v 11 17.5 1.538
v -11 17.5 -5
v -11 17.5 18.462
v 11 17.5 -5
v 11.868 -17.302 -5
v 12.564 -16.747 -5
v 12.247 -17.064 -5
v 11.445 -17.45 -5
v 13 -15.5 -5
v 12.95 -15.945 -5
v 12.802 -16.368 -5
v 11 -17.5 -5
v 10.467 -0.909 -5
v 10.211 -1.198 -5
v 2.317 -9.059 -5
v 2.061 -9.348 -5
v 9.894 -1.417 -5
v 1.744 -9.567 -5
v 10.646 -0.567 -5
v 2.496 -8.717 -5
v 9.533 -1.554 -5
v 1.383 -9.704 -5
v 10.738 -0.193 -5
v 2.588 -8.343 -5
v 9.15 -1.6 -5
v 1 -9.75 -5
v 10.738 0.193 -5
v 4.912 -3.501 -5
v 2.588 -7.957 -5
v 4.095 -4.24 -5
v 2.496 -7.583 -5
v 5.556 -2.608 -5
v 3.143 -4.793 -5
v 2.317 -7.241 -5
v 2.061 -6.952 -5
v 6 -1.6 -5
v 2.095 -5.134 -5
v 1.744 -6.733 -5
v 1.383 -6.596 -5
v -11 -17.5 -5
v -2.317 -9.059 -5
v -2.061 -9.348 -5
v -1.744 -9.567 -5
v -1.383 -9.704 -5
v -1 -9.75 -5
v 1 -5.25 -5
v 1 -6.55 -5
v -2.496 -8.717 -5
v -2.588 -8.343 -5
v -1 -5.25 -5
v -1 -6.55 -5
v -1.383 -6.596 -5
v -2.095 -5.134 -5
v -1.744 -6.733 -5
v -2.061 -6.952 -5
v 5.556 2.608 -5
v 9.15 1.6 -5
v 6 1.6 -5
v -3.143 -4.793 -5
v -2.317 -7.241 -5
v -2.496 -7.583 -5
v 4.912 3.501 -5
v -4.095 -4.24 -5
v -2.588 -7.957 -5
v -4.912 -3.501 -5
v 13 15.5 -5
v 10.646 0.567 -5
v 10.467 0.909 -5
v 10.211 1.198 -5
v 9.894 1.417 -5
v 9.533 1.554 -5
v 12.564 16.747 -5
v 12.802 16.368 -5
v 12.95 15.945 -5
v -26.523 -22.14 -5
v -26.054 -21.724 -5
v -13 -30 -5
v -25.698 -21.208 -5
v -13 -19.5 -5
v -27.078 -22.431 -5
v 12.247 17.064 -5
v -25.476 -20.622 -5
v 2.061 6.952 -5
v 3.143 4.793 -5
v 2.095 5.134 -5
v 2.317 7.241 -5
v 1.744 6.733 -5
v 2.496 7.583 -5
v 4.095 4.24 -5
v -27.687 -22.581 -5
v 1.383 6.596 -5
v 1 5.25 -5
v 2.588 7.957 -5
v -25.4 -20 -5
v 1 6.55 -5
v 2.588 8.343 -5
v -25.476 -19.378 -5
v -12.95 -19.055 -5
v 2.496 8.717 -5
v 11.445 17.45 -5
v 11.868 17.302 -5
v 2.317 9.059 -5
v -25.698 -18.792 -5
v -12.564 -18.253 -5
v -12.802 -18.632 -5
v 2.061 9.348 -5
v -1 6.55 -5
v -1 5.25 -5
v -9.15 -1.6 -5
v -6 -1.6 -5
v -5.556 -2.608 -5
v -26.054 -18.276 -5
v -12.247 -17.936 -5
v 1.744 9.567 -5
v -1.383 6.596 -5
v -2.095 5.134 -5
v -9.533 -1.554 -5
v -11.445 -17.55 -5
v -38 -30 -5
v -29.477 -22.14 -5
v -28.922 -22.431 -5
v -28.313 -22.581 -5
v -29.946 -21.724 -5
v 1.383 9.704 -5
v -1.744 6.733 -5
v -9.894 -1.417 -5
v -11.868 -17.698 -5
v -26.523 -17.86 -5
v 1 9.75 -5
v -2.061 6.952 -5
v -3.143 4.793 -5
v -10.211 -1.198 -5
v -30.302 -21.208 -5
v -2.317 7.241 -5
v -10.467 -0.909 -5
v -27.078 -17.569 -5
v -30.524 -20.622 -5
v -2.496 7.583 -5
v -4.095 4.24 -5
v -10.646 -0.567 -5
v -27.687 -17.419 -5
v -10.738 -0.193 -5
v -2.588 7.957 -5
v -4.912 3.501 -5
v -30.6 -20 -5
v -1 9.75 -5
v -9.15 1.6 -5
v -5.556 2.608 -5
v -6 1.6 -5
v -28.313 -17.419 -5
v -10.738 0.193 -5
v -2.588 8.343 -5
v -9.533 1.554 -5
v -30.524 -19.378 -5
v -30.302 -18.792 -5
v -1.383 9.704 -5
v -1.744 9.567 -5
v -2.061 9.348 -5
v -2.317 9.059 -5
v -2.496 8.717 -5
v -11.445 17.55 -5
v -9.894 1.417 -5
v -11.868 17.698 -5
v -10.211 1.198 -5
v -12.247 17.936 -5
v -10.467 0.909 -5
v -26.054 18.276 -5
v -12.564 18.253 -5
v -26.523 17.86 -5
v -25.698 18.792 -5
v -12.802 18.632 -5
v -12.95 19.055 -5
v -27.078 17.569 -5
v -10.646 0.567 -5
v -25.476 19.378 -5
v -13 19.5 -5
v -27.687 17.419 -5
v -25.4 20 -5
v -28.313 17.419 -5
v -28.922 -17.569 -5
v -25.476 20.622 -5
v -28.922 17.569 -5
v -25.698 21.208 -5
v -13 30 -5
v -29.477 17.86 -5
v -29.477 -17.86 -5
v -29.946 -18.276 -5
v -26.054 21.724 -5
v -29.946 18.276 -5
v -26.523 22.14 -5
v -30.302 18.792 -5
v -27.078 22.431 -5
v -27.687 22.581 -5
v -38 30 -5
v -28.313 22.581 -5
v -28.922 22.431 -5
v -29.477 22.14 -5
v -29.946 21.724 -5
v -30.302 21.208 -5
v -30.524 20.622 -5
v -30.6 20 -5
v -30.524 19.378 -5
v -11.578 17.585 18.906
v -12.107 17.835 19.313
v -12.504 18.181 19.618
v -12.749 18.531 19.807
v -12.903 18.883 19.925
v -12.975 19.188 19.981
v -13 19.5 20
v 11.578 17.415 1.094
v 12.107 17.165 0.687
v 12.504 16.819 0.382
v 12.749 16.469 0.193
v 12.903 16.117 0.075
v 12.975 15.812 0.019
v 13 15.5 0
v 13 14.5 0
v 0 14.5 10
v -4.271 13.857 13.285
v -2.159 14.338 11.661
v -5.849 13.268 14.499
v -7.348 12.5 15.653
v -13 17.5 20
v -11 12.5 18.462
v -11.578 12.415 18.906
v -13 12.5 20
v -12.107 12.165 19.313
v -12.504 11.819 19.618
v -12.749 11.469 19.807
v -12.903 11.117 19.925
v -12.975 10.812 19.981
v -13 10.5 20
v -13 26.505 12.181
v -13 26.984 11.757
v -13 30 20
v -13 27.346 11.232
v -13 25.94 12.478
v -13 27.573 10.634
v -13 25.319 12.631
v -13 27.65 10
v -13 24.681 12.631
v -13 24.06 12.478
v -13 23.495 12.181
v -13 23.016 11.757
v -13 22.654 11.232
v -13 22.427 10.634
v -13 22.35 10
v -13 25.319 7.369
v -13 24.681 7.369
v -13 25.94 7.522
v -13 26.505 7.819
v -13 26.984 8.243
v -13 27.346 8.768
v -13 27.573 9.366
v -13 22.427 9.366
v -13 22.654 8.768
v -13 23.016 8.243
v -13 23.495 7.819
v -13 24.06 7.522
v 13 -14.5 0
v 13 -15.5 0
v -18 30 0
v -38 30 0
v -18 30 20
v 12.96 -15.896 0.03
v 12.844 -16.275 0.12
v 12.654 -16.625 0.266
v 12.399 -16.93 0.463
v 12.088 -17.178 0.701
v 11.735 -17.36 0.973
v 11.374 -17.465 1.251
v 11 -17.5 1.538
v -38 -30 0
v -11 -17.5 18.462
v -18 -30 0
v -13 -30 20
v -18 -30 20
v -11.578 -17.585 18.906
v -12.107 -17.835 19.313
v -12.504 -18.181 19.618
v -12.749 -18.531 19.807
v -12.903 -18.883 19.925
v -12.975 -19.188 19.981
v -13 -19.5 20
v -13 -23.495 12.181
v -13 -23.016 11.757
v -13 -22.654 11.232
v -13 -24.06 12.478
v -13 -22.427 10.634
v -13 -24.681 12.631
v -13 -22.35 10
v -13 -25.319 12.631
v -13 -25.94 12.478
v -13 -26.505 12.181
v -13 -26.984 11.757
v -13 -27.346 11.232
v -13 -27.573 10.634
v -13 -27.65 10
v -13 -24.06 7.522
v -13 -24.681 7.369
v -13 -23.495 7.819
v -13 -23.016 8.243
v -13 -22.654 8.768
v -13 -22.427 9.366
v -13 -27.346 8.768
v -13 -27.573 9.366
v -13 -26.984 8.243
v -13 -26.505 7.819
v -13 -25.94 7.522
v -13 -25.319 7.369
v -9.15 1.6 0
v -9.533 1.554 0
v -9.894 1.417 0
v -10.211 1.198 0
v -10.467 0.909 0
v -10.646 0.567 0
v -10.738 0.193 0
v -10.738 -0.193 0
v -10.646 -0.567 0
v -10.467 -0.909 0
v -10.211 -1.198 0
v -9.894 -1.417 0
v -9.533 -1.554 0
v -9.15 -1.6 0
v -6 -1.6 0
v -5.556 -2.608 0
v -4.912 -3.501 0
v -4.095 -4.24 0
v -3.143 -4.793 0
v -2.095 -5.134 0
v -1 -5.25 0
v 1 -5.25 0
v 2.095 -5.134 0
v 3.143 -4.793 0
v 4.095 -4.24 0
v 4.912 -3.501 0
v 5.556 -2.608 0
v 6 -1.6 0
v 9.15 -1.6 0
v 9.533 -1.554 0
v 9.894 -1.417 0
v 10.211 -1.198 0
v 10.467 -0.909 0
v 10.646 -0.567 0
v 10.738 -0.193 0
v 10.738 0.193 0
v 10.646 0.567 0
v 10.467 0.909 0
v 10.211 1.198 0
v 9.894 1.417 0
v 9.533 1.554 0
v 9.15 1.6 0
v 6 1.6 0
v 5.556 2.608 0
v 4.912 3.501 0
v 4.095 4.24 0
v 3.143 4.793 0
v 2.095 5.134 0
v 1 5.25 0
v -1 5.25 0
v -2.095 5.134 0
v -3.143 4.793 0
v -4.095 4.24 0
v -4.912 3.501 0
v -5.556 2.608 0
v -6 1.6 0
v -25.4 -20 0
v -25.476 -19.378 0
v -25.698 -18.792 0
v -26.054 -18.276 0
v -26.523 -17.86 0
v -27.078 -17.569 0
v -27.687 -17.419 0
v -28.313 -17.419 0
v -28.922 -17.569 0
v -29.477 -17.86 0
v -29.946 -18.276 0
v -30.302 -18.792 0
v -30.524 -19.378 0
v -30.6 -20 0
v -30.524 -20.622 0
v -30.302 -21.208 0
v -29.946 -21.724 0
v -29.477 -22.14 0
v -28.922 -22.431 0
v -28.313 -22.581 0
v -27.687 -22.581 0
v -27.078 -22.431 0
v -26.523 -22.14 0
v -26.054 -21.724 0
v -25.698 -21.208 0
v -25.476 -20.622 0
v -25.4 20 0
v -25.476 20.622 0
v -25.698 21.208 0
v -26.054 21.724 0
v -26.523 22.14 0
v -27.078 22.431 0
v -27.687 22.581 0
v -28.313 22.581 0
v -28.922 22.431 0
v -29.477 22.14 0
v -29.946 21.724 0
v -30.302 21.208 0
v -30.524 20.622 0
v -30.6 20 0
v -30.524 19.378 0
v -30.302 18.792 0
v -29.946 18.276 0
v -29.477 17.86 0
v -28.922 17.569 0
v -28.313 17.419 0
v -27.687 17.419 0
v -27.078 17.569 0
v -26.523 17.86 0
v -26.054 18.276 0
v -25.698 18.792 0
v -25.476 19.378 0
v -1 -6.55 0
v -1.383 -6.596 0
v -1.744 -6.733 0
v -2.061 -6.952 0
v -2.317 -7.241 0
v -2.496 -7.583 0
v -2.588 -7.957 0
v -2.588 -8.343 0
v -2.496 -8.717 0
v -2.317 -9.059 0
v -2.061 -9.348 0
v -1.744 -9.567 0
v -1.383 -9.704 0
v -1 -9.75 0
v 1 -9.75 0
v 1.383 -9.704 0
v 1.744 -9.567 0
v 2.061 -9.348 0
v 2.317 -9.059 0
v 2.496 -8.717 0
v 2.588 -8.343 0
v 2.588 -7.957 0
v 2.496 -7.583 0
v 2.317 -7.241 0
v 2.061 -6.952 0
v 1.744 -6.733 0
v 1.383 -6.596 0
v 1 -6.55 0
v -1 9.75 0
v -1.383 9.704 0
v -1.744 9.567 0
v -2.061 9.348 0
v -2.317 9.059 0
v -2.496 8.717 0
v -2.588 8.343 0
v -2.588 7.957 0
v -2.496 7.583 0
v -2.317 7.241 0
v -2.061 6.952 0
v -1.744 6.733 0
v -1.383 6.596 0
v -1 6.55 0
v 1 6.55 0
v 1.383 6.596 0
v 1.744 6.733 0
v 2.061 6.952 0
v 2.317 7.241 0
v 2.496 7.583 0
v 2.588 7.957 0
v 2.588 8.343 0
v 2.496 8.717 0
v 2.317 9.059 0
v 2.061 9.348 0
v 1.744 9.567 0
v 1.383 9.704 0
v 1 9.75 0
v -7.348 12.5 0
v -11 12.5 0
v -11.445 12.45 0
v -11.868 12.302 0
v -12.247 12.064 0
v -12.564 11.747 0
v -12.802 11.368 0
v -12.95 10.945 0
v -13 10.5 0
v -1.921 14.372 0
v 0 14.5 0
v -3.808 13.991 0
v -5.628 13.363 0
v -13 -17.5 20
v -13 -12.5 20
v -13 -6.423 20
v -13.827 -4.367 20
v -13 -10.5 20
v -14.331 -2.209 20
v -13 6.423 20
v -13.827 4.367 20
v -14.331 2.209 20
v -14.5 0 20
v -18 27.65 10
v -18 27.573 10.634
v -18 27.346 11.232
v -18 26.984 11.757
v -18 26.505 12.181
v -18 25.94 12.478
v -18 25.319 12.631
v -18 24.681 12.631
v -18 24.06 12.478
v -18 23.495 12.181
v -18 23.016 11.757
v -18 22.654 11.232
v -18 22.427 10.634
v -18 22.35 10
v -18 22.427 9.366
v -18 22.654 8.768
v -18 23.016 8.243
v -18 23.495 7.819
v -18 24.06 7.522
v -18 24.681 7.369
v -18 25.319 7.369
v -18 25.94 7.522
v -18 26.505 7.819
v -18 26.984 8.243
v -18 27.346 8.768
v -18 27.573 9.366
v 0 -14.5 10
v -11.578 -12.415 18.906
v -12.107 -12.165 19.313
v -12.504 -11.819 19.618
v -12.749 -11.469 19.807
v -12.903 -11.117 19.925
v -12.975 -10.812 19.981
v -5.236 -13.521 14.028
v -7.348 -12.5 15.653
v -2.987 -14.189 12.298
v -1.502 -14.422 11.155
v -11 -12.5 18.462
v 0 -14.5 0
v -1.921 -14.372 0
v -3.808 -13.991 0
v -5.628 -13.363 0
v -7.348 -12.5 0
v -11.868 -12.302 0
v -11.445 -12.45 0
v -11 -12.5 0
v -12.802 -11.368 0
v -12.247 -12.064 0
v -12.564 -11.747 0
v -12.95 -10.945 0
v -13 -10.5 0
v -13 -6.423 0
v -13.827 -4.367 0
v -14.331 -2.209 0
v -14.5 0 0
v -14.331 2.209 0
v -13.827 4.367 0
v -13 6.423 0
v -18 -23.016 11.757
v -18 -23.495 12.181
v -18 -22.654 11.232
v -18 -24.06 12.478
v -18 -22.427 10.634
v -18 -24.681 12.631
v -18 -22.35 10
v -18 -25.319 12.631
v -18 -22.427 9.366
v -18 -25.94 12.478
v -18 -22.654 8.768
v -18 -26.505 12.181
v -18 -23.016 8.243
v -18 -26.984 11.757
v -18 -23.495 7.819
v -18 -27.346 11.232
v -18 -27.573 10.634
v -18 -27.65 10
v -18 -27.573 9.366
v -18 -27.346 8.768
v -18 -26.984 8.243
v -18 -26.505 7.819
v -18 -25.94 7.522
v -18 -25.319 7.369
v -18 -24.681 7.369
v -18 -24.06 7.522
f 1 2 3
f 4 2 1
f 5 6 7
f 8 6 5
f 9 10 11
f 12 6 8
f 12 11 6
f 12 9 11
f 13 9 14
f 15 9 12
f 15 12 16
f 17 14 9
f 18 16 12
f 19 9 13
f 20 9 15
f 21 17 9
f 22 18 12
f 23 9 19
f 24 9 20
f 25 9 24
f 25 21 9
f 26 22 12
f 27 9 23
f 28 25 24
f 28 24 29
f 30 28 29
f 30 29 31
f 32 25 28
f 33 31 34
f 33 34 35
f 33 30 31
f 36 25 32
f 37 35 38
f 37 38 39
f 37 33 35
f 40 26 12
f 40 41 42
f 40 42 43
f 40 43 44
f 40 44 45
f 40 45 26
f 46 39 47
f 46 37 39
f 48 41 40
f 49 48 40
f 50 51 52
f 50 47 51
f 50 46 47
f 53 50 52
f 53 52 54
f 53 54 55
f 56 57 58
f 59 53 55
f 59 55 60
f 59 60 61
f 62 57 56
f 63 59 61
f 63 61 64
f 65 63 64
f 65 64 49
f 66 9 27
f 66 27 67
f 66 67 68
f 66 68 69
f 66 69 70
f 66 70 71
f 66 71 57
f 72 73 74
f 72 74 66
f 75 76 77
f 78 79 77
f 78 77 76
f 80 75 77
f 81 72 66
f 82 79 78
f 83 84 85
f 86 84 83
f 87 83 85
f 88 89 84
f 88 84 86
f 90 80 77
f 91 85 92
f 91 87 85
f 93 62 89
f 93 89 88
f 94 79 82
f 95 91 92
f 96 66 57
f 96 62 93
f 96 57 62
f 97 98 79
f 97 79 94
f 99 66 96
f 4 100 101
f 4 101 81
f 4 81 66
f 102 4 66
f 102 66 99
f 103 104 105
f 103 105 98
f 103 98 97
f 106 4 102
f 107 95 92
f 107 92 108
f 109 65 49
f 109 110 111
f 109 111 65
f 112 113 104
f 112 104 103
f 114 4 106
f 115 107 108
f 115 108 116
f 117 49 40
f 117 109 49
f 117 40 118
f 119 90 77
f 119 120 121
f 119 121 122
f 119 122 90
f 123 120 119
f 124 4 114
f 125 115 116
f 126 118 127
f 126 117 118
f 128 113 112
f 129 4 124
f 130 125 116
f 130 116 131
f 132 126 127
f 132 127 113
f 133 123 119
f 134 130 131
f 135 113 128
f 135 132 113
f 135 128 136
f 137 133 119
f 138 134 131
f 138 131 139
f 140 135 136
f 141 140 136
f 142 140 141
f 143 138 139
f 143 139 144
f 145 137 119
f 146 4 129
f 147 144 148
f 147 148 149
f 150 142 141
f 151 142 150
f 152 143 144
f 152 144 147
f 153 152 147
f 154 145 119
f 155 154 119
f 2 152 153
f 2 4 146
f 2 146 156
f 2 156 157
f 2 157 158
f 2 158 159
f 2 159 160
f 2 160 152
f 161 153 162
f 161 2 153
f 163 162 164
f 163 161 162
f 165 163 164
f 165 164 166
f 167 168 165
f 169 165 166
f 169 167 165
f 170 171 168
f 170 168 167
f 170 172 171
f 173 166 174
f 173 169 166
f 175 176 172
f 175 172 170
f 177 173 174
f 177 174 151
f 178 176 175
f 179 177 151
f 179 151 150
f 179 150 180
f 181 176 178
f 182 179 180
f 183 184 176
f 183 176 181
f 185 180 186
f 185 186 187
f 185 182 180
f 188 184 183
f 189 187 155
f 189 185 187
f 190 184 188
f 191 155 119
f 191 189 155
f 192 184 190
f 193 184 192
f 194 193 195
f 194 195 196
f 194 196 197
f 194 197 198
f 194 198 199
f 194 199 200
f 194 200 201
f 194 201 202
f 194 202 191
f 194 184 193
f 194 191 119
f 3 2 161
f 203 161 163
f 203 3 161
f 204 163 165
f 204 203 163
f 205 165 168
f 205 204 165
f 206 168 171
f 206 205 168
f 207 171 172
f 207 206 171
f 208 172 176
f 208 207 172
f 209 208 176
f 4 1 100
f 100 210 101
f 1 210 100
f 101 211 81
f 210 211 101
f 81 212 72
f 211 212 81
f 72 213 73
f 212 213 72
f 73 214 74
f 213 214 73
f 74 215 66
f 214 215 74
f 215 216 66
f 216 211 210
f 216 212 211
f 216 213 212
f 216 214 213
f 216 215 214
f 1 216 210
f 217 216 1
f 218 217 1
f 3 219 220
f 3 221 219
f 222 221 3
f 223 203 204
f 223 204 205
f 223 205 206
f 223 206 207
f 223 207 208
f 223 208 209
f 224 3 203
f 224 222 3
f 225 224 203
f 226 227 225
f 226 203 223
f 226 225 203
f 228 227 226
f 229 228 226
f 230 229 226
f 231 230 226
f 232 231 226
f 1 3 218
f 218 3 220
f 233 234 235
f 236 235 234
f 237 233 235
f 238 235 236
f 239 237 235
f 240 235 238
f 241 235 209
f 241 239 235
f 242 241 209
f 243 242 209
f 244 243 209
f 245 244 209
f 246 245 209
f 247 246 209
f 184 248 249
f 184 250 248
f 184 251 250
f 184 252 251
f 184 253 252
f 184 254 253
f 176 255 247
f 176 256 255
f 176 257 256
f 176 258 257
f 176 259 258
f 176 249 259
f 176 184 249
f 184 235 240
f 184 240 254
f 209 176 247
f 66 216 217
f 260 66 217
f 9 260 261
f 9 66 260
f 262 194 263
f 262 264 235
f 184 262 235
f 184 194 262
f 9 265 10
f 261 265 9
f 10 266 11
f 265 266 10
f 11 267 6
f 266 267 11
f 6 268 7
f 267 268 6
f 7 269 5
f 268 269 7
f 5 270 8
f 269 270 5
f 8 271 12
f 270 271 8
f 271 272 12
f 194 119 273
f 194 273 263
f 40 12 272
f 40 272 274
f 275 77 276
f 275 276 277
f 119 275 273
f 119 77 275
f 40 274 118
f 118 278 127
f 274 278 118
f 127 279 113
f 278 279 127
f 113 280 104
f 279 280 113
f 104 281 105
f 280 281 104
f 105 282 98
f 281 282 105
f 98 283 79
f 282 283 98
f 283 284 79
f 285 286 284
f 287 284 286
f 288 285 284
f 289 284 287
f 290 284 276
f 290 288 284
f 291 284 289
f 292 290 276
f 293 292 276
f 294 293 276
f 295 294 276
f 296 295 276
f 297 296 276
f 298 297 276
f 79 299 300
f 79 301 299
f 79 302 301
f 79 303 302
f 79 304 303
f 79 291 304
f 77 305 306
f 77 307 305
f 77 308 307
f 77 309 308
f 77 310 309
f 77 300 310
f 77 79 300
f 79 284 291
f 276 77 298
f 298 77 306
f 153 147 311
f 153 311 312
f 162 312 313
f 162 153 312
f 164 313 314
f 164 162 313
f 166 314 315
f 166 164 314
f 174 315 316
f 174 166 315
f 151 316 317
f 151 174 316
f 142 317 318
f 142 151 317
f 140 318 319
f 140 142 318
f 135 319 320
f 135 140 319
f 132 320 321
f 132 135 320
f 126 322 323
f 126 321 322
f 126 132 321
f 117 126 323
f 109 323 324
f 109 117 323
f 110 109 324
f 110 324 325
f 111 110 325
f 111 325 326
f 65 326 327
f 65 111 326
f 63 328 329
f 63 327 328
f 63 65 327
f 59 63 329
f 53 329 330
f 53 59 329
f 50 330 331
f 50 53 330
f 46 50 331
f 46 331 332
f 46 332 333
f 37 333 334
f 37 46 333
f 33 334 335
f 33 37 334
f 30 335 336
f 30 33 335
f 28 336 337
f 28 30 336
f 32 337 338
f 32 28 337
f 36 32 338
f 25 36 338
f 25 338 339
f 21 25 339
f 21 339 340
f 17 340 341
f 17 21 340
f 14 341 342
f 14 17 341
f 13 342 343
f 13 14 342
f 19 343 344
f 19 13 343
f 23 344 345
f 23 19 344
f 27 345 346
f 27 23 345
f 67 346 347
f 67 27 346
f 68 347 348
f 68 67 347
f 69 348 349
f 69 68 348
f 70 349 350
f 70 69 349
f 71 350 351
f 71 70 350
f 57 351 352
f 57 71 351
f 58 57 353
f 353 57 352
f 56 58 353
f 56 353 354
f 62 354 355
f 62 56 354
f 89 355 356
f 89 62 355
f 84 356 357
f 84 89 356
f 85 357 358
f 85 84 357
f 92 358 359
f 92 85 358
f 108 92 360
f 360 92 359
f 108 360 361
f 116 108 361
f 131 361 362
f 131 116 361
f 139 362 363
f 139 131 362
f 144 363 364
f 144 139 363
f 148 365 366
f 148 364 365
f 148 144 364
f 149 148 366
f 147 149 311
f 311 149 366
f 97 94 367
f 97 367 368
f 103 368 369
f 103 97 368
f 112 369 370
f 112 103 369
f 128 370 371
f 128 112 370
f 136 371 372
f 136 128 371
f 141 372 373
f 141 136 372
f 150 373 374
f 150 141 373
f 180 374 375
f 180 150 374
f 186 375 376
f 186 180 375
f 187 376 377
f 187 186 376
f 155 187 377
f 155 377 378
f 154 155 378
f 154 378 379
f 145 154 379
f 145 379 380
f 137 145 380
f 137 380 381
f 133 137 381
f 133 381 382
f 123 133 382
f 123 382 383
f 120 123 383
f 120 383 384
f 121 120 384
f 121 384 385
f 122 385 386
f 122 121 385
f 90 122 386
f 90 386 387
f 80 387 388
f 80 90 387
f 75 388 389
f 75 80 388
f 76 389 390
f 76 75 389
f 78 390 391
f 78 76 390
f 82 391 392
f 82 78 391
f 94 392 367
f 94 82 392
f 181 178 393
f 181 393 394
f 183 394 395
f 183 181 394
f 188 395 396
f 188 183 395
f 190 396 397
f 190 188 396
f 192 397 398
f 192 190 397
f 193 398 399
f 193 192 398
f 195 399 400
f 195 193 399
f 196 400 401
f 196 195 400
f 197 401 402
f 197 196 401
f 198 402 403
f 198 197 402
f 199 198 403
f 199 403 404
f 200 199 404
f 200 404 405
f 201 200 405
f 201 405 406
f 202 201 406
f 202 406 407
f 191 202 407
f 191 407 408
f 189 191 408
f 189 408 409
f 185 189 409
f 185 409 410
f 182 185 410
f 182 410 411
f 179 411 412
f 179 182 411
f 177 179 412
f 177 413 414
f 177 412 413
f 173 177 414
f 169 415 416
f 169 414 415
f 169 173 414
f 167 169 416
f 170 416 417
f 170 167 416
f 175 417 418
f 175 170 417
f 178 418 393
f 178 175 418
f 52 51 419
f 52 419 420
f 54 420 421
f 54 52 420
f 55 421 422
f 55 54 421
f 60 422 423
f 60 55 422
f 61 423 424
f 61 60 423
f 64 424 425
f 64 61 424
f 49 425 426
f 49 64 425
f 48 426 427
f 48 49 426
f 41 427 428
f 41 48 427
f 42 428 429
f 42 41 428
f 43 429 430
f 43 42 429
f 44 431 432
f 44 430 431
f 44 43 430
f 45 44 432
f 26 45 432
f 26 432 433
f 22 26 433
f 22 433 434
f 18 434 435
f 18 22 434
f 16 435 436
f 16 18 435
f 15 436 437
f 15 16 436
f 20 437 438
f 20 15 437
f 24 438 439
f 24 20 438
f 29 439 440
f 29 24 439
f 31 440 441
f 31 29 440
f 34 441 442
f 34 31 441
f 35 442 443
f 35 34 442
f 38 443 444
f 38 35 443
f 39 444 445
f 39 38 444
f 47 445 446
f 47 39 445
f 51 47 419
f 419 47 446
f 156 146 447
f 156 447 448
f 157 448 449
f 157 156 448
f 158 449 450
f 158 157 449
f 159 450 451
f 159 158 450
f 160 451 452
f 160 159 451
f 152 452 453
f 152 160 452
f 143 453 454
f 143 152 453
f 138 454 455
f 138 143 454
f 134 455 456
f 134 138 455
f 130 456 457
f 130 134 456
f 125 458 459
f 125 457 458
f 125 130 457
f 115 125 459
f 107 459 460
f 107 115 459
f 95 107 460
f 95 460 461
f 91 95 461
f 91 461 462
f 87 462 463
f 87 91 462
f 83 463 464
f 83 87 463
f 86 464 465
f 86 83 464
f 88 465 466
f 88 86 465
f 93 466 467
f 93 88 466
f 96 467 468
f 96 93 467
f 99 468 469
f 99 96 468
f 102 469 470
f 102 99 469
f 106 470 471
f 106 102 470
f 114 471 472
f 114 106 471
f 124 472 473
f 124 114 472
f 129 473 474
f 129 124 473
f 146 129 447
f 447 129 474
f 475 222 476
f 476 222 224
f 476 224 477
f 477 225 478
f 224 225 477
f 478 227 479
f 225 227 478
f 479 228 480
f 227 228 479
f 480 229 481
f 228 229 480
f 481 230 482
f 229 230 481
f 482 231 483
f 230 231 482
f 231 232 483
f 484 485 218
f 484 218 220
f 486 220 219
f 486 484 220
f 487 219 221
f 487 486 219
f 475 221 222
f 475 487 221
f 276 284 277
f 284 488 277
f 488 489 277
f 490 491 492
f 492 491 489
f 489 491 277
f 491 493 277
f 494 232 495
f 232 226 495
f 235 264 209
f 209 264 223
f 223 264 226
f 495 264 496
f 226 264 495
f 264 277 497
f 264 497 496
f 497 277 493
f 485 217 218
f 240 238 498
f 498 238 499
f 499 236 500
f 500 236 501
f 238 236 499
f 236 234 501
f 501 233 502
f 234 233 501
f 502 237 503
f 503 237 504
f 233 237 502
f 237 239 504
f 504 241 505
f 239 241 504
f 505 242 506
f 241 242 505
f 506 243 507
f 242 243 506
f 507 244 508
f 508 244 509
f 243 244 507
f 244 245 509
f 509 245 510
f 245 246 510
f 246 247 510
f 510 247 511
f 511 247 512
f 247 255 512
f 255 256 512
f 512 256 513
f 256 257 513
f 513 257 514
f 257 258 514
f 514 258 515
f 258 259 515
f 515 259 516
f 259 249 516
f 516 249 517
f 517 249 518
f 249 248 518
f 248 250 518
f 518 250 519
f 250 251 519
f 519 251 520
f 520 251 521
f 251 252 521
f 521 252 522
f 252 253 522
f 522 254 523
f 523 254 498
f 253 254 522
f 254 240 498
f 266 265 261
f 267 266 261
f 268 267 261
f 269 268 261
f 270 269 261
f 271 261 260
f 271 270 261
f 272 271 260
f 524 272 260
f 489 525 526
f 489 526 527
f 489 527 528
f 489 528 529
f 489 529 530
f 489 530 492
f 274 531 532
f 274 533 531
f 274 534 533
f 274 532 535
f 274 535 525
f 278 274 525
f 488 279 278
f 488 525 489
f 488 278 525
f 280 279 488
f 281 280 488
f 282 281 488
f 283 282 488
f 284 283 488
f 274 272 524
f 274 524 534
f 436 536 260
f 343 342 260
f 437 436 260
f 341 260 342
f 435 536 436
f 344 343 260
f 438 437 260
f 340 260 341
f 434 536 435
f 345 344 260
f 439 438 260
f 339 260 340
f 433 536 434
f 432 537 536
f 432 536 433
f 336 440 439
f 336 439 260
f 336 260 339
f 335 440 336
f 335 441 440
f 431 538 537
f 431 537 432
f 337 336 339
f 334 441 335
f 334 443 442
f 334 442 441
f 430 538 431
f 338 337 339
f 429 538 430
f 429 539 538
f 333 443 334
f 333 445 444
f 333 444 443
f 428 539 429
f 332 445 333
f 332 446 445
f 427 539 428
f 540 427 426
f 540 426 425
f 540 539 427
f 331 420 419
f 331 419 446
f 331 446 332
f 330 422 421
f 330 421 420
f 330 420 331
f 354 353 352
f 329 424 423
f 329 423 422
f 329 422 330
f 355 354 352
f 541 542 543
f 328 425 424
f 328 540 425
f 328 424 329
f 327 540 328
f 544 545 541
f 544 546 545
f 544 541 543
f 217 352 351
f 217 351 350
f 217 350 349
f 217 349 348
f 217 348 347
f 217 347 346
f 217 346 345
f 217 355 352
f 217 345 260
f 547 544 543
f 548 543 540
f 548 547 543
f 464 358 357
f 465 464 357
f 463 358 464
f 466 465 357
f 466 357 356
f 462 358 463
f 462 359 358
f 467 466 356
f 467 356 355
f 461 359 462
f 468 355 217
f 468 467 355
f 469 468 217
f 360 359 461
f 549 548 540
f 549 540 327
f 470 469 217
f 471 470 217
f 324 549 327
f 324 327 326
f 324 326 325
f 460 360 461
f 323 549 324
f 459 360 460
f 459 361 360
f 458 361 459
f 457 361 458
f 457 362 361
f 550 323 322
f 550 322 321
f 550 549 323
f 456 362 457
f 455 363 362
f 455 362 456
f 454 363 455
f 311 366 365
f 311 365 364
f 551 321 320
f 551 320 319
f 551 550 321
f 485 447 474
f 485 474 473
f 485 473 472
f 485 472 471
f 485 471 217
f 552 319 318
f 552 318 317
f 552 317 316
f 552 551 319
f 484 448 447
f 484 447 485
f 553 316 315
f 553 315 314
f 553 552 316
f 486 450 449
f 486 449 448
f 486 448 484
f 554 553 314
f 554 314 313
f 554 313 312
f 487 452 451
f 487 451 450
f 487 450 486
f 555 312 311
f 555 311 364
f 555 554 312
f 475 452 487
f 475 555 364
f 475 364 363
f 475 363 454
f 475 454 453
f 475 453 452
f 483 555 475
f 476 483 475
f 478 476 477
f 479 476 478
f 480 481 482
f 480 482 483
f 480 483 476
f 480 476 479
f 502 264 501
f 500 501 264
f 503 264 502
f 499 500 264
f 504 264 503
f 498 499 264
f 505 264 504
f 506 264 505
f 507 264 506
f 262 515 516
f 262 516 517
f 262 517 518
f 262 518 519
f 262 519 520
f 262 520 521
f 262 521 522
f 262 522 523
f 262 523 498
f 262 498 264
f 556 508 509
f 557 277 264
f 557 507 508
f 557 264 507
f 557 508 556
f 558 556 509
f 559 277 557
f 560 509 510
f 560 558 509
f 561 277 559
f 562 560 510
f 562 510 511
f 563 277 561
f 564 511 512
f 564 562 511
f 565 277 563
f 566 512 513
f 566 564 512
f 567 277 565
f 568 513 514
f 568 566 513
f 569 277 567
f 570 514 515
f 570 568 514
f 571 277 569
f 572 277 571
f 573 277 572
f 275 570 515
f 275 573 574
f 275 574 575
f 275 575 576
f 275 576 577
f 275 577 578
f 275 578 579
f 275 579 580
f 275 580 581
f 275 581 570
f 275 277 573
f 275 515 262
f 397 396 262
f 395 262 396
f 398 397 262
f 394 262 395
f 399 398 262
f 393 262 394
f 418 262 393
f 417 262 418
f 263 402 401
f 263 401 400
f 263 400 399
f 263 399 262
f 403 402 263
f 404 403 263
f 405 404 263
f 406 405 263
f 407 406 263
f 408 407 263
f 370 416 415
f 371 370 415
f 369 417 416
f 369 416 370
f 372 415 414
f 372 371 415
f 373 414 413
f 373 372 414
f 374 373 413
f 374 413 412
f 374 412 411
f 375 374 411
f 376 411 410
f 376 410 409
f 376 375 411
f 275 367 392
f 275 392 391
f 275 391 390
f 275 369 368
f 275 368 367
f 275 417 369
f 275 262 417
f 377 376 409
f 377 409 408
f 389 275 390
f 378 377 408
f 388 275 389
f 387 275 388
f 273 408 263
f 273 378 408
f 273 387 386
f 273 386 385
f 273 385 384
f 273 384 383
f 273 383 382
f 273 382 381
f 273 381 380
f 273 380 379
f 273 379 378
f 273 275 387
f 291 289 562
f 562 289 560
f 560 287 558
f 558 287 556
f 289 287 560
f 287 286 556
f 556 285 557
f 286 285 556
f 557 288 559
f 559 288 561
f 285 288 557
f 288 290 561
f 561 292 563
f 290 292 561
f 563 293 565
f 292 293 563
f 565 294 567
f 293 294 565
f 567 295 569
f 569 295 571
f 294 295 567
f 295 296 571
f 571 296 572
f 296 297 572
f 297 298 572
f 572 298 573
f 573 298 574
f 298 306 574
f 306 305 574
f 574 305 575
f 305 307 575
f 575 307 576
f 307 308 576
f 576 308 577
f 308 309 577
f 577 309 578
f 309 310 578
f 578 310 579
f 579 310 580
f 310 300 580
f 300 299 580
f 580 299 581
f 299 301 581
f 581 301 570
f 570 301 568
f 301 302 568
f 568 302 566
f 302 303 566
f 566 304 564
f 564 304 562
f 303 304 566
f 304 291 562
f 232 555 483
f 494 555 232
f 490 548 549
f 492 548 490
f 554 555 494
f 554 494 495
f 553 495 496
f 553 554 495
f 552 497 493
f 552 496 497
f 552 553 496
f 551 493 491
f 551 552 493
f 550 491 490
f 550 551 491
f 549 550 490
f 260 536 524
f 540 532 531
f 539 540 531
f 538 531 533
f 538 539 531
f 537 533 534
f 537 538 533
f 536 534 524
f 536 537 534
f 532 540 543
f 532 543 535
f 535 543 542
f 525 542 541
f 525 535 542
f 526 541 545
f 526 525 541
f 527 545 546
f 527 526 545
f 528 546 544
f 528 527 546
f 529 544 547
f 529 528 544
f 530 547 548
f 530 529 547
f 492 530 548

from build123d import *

# Parameters (mm, degrees)
SKETCH_R          = 2.6
PAD_DEPTH         = 20
PAD_DEPTH_BACK    = 5
SKETCH002_W       = 33.294622
SKETCH002_H       = 24.26609
POCKET001_DEPTH   = 12.5
SKETCH003_R       = 2.65
POCKET002_DEPTH   = 38.001
POCKET003_DEPTH   = 20.001
SKETCH001_W       = 20
SKETCH001_H       = 20
POCKET_DEPTH      = 30.001
POCKET_DEPTH_BACK = -30.001
FILLET_R          = 2


with BuildPart() as part:
    # Sketch → Pad (new body, two sides)
    with BuildSketch(Plane.XY) as pad_sk:
        Polygon((-13, 17.5), (13, 17.5), (13, -17.5), (-13, -17.5), (-13, -30), (-38, -30), (-38, 30), (-13, 30), align=None)
        with Locations((-28, 20)):
            Circle(SKETCH_R, mode=Mode.SUBTRACT)
        with Locations((-28, -20)):
            Circle(SKETCH_R, mode=Mode.SUBTRACT)
        with BuildLine():
            Line((-1, -5.25), (1, -5.25))
            ThreePointArc((1, -5.25), (4.095359, -4.24043), (6.00025, -1.6))
            Line((6.00025, -1.6), (9.15, -1.6))
            ThreePointArc((9.15, -1.6), (10.75, 0), (9.15, 1.6))
            Line((6.00025, 1.6), (9.15, 1.6))
            ThreePointArc((6.00025, 1.6), (4.095359, 4.24043), (1, 5.25))
            Line((-1, 5.25), (1, 5.25))
            ThreePointArc((-1, 5.25), (-4.095359, 4.24043), (-6.00025, 1.6))
            Line((-9.15, 1.6), (-6.00025, 1.6))
            ThreePointArc((-9.15, 1.6), (-10.75, 0), (-9.15, -1.6))
            Line((-9.15, -1.6), (-6.00025, -1.6))
            ThreePointArc((-6.00025, -1.6), (-4.095359, -4.24043), (-1, -5.25))
        make_face(mode=Mode.SUBTRACT)
        with BuildLine():
            ThreePointArc((-1, 9.75), (-2.6, 8.15), (-1, 6.55))
            Line((-1, 6.55), (1, 6.55))
            ThreePointArc((1, 6.55), (2.6, 8.15), (1, 9.75))
            Line((-1, 9.75), (1, 9.75))
        make_face(mode=Mode.SUBTRACT)
        with BuildLine():
            ThreePointArc((-1, -6.55), (-2.6, -8.15), (-1, -9.75))
            Line((-1, -9.75), (1, -9.75))
            ThreePointArc((1, -9.75), (2.6, -8.15), (1, -6.55))
            Line((-1, -6.55), (1, -6.55))
        make_face(mode=Mode.SUBTRACT)
    extrude(amount=PAD_DEPTH)
    extrude(pad_sk.sketch, amount=-PAD_DEPTH_BACK)

    # Sketch002 → Pocket001 (cut, symmetric)
    with BuildSketch(Plane.XZ):
        with Locations((3.647311, 12.133045)):
            Rectangle(SKETCH002_W, SKETCH002_H)
    extrude(amount=POCKET001_DEPTH, both=True, mode=Mode.SUBTRACT)

    # Sketch003 → Pocket002 (cut, through all)
    with BuildSketch(Plane.YZ):
        with Locations((-25, 10)):
            Circle(SKETCH003_R)
        with Locations((25, 10)):
            Circle(SKETCH003_R)
    extrude(amount=-POCKET002_DEPTH, mode=Mode.SUBTRACT)

    # Sketch004 → Pocket003 (cut, through all)
    with BuildSketch(Plane.XY):
        with BuildLine():
            ThreePointArc((0, 14.5), (-14.5, 0), (0, -14.5))
            Line((29.411848, -14.5), (0, -14.5))
            Line((29.411848, 14.5), (29.411848, -14.5))
            Line((0, 14.5), (29.411848, 14.5))
        make_face()
    extrude(amount=POCKET003_DEPTH, mode=Mode.SUBTRACT)

    # Sketch001 → Pocket (cut, two sides)
    with BuildSketch(Plane.XZ) as pocket_sk:
        with Locations((-28, 10)):
            Rectangle(SKETCH001_W, SKETCH001_H)
        Polygon((-13, 20), (13, 20), (13, 0), align=None)
    extrude(amount=-POCKET_DEPTH, mode=Mode.SUBTRACT)
    extrude(pocket_sk.sketch, amount=-POCKET_DEPTH_BACK, mode=Mode.SUBTRACT)

    # Fillet
    fillet_edges = [part.edges().sort_by_distance(p)[0] for p in [
        (-13, -17.5, 7.5),
        (13, -17.5, -2.5),
        (13, 17.5, -2.5),
        (-13, 17.5, 7.5),
        (-13, 12.5, 10),
        (-13, -12.5, 10),
    ]]
    fillet(fillet_edges, radius=FILLET_R)


solid = part.part
